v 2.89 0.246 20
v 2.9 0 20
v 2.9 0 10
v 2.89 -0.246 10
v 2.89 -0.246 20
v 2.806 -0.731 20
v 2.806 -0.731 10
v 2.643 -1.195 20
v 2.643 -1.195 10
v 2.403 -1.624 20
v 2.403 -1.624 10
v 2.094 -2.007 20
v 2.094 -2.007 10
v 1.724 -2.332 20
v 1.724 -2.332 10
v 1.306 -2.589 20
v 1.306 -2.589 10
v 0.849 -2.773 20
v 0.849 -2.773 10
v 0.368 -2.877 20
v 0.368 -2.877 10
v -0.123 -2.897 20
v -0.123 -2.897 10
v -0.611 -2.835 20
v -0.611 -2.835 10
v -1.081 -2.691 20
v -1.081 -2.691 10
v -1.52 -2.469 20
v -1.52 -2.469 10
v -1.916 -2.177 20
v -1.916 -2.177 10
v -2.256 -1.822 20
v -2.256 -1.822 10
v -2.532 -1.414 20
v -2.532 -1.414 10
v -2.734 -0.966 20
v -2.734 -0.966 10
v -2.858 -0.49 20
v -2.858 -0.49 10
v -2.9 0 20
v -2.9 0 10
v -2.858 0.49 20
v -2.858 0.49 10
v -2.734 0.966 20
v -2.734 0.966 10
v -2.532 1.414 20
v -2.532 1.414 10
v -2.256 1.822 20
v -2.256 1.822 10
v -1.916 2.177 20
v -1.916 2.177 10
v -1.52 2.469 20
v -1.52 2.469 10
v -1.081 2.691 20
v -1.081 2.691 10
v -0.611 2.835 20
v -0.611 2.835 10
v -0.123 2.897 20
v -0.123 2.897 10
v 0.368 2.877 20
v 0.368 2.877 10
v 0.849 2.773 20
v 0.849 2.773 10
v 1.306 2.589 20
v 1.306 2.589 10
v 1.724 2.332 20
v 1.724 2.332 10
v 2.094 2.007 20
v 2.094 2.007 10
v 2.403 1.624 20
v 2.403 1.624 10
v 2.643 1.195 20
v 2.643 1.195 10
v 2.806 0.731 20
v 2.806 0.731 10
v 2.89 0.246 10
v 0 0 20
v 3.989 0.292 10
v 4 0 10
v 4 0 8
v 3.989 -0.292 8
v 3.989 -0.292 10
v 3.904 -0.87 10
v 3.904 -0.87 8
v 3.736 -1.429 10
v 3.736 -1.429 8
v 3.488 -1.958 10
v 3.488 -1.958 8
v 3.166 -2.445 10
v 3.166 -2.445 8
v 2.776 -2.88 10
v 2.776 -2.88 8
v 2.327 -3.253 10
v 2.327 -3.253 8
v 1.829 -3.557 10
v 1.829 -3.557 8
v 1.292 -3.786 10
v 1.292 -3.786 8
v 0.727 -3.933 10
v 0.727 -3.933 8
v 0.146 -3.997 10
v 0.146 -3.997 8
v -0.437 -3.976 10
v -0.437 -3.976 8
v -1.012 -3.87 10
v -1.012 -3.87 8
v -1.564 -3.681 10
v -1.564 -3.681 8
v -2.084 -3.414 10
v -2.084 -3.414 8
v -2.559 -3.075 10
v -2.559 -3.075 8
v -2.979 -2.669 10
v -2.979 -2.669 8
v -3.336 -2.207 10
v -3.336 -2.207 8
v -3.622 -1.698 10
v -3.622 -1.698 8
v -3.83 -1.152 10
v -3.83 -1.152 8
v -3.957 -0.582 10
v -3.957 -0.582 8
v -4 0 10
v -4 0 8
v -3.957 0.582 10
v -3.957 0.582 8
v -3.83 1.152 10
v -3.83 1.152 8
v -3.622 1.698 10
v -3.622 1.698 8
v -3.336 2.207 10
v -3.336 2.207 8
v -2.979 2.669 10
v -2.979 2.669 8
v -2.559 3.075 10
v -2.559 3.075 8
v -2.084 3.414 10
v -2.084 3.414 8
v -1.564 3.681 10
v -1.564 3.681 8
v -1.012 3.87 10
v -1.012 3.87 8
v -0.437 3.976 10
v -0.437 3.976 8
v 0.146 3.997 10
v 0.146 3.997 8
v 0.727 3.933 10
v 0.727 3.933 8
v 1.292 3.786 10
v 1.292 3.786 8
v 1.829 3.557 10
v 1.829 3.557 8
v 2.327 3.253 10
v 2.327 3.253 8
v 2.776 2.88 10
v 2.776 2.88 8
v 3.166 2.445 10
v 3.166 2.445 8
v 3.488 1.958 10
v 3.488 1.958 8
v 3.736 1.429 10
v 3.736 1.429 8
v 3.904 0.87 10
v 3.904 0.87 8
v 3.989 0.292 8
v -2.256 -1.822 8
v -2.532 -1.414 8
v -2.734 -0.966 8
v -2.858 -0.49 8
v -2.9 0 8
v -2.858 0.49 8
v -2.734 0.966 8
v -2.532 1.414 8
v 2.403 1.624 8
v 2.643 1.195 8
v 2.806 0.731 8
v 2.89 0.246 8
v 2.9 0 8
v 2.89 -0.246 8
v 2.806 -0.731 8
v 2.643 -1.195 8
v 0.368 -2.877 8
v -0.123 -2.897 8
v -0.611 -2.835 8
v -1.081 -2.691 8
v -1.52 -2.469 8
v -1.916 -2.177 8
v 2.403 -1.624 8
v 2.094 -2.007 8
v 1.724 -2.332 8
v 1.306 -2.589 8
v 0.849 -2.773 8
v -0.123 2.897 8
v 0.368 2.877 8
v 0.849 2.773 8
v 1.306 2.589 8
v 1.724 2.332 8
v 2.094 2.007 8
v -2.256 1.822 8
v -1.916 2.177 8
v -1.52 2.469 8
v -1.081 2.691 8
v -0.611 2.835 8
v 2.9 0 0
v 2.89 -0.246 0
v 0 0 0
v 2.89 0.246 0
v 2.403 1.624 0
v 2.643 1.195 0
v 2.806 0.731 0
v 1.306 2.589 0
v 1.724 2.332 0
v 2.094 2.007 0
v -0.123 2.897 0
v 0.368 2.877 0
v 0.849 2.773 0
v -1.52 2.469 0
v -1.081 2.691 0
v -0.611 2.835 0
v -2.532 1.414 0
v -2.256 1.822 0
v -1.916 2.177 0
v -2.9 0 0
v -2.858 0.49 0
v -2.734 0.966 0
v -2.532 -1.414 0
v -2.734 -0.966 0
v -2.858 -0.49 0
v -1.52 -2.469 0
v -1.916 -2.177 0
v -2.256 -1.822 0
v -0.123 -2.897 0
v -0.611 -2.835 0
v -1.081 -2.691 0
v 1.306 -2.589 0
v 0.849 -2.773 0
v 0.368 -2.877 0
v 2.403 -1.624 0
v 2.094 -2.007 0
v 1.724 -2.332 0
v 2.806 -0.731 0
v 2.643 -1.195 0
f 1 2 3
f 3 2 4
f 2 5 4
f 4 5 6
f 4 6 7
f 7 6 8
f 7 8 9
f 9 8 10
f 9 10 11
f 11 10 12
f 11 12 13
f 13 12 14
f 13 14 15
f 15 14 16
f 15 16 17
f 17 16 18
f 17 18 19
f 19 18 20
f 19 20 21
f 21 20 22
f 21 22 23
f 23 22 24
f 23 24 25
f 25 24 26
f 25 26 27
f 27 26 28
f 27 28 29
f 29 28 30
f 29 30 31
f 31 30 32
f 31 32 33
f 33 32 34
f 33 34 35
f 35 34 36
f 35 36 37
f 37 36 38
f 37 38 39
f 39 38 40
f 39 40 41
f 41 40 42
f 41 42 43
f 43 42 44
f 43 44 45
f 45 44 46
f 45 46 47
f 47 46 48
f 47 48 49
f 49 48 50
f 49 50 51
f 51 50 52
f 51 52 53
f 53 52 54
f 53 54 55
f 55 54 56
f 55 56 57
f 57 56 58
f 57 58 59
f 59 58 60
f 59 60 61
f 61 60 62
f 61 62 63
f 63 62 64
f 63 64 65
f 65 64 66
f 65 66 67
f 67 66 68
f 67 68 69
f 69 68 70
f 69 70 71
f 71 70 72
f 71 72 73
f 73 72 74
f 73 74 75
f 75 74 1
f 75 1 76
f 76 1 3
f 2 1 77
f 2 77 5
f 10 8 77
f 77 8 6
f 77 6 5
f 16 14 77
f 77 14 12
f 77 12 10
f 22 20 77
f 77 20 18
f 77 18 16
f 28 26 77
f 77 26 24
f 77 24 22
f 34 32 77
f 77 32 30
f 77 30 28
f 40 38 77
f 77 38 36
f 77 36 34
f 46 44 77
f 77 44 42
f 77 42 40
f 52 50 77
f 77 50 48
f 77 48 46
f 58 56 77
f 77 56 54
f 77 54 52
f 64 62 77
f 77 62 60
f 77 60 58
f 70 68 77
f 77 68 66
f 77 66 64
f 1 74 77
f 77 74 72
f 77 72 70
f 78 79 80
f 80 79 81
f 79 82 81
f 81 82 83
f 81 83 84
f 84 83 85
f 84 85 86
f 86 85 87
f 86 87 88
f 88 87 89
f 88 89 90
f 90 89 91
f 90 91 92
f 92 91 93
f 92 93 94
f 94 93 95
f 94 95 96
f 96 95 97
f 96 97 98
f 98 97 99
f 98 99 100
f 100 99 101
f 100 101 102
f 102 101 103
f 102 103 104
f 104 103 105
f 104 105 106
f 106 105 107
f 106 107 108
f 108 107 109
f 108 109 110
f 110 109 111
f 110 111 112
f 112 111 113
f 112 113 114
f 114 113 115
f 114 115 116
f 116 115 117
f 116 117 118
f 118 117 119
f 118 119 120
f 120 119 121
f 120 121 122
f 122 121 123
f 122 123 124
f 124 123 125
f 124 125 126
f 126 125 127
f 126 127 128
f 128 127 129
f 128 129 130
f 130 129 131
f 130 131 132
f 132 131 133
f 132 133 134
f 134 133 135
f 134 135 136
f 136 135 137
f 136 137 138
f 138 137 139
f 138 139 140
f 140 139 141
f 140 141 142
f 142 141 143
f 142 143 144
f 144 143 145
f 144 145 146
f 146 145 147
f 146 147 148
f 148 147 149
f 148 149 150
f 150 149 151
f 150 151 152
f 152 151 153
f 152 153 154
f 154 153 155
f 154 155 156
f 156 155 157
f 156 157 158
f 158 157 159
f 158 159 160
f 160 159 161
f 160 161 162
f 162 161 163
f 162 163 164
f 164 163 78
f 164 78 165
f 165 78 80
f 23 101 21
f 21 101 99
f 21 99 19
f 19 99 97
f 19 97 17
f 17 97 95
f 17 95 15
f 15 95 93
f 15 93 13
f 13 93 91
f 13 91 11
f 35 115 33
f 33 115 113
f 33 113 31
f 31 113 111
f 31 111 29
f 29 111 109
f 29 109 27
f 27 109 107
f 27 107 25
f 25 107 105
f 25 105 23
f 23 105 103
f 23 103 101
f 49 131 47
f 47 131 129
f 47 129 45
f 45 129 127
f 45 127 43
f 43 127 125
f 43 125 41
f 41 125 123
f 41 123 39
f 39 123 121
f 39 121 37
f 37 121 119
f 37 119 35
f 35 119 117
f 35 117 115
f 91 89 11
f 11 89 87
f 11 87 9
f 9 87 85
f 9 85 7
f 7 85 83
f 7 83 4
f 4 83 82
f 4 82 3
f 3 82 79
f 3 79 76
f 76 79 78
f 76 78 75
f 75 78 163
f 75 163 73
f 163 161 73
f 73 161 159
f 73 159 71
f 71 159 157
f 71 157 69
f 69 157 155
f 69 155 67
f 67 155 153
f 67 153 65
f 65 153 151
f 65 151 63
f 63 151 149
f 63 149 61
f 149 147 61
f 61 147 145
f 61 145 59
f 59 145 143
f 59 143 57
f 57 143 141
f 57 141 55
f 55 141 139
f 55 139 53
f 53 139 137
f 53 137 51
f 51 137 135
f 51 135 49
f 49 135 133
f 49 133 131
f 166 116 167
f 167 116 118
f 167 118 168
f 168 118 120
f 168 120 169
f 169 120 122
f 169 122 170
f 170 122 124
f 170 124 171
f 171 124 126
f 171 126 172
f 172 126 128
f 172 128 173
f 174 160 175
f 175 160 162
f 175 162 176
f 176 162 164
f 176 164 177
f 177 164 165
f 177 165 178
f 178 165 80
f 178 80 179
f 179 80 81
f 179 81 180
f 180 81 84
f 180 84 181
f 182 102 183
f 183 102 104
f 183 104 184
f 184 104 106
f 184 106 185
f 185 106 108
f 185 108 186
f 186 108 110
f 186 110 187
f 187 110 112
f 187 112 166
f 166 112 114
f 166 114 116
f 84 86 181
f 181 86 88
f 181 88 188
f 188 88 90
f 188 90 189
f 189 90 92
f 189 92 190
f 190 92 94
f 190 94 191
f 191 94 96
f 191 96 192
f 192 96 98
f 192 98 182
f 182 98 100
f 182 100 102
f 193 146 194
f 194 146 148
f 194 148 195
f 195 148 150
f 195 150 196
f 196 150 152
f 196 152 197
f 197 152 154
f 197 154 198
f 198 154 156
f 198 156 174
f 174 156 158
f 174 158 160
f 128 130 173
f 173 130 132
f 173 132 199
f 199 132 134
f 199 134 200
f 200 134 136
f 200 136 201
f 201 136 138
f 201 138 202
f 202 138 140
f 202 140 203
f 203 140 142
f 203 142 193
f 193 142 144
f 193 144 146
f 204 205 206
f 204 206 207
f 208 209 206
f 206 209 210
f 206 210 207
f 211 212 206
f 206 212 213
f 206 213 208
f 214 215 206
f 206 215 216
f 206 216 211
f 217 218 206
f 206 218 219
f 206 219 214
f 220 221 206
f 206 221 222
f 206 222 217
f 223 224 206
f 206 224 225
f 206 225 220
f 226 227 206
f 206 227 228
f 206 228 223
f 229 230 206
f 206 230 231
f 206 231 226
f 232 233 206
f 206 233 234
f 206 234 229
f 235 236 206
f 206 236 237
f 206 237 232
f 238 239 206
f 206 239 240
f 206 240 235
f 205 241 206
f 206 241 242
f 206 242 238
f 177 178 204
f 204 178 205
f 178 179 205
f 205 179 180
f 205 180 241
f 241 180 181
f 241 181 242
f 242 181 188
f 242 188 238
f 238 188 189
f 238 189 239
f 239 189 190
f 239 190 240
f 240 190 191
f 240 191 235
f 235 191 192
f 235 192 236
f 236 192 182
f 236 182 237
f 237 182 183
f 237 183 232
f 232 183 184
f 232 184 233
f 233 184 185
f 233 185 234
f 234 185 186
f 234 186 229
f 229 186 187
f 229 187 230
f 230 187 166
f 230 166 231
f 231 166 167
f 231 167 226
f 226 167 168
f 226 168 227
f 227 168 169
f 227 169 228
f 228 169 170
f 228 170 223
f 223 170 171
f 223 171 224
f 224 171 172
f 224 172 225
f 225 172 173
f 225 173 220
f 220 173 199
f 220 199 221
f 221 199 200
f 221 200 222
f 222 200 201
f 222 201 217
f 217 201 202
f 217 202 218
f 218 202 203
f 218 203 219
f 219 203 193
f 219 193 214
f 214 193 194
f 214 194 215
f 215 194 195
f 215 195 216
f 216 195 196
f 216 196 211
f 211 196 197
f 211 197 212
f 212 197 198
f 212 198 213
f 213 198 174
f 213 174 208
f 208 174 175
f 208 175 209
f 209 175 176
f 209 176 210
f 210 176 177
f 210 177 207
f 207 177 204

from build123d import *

# Parameters (mm, degrees)
SKETCH2_R              = 2.9
LOCATOR_SHAFT_DEPTH    = 20
LOCATOR_SHOULDER_START = 8
SKETCH3_R              = 4
LOCATOR_SHOULDER_DEPTH = 2


with BuildPart() as part:
    # Sketch2 → Locator_shaft (new body)
    with BuildSketch(Plane.XY):
        Circle(SKETCH2_R)
    extrude(amount=LOCATOR_SHAFT_DEPTH)

    # Sketch3 → Locator_shoulder (add)
    with BuildSketch(Plane.XY.offset(LOCATOR_SHOULDER_START)):
        Circle(SKETCH3_R)
    extrude(amount=LOCATOR_SHOULDER_DEPTH)


solid = part.part
